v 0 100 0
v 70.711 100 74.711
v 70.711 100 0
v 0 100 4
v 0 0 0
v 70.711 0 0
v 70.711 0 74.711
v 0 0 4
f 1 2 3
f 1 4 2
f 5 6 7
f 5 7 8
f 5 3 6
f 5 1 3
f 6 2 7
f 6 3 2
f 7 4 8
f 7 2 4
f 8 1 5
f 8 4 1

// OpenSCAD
// Nominal OmniBot AprilTag jig. Units: millimeters.
// Generated by generate_printables.py. Low end (x = 0) points outward.
// Tall end points inward. Underside (z = 0) tapes to the top plate.
// The 100 mm card covers the slope; its top edge is the tall end.
base_t = 4.000000;
depth = 70.710678;
rise = 70.710678;
width = 100.000000;
rotate([90, 0, 0])
translate([0, 0, -width])
linear_extrude(height = width)
  polygon(points = [
    [0, 0],
    [depth, 0],
    [depth, base_t + rise],
    [0, base_t]
  ]);
